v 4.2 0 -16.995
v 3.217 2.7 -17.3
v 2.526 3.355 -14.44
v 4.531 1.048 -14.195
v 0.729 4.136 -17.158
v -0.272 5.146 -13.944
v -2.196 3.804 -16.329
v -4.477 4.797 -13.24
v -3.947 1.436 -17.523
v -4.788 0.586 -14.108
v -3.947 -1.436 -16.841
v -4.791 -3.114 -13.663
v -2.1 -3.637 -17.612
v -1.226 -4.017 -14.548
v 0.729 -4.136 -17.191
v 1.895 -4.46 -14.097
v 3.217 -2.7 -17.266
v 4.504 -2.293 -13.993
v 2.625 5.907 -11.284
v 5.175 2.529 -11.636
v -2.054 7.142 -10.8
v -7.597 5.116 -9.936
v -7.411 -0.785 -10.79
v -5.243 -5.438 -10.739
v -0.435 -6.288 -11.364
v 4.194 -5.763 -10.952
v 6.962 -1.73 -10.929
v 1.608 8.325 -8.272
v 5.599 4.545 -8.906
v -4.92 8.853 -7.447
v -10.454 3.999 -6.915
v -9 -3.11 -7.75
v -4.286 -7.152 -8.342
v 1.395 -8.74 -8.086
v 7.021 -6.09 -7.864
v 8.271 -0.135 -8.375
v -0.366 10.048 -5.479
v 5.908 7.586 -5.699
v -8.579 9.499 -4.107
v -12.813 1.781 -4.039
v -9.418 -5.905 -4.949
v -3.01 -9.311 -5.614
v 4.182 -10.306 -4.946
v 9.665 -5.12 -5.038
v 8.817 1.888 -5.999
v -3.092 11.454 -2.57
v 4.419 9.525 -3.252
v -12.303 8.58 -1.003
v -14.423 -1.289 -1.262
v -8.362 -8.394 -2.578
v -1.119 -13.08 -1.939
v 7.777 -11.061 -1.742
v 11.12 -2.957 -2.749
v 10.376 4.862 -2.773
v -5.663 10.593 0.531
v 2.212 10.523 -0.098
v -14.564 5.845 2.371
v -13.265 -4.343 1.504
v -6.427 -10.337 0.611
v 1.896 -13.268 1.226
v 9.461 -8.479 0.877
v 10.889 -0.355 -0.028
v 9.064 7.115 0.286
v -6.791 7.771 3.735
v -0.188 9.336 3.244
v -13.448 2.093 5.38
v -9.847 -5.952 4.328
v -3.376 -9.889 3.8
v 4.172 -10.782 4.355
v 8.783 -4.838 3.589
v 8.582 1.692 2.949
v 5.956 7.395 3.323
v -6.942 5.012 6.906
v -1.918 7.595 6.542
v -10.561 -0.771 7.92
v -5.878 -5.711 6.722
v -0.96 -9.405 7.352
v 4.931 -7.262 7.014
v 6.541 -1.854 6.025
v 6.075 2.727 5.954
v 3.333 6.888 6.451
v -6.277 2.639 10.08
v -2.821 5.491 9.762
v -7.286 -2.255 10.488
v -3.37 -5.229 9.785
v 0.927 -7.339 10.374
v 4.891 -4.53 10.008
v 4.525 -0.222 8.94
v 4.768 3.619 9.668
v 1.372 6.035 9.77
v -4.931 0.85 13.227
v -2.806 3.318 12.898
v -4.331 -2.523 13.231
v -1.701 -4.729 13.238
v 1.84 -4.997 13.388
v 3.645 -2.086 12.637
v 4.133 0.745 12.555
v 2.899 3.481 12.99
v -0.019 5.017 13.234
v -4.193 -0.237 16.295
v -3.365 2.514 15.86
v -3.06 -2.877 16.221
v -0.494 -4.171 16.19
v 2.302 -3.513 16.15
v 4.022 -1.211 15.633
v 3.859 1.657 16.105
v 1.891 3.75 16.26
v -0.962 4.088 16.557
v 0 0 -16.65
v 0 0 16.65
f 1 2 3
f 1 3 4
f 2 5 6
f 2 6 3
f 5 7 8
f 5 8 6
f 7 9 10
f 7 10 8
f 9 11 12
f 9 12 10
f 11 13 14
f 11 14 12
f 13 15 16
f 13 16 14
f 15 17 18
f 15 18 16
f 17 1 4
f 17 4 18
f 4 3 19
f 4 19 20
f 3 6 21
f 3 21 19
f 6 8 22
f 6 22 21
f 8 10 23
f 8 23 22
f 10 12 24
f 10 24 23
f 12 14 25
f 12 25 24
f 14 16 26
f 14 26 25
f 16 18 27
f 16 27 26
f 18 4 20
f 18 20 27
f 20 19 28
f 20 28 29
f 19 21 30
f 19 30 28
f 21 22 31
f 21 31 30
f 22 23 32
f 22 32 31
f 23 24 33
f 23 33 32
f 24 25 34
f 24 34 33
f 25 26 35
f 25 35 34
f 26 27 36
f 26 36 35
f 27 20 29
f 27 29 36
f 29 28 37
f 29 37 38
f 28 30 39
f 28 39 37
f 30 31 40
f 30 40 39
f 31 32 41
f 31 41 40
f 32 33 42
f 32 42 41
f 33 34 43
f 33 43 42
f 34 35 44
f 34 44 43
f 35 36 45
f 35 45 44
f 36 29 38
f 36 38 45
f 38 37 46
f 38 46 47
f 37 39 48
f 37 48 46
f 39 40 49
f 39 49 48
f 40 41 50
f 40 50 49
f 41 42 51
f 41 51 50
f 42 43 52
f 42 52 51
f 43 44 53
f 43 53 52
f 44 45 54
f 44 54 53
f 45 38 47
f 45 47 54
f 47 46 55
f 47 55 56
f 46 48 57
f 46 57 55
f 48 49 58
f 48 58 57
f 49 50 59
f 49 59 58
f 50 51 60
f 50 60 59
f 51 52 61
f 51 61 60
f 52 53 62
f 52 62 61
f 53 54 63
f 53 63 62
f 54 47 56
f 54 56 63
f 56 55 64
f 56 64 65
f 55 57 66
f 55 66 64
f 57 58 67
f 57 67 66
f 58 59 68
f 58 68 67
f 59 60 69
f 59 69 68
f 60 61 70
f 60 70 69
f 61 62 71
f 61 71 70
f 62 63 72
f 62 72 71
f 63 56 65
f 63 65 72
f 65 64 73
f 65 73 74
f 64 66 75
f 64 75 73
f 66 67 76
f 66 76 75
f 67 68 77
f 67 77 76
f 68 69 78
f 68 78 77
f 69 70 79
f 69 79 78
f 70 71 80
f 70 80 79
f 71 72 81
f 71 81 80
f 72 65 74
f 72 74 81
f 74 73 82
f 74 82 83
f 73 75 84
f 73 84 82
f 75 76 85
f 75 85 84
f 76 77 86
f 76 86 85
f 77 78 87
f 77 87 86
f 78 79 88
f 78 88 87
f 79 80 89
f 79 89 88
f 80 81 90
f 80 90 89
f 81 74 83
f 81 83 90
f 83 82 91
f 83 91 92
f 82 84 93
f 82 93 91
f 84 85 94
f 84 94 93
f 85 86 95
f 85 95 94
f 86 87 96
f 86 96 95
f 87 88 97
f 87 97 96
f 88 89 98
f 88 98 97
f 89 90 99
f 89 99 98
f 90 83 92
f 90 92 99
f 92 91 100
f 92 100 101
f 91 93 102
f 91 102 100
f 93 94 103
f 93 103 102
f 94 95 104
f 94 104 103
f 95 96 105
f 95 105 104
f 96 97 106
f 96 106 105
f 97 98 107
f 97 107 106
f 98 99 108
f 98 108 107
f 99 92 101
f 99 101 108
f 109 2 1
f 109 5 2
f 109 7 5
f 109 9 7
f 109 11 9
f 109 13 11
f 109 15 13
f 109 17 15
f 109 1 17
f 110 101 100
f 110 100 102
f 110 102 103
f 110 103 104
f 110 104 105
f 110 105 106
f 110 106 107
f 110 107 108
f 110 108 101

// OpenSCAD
module object1(scale) { scale(0.15) polyhedron(
 points=[[28,0,-113.29807126778162],[21.449244407331385,17.998053071223097,-115.33448118412322],[16.842323638503295,22.368194707126307,-96.26775887044725],
[28,0,-113.29807126778162],[16.842323638503295,22.368194707126307,-96.26775887044725],[30.205709612306514,6.985626156597965,-94.63488091709826],
[21.449244407331385,17.998053071223097,-115.33448118412322],[4.862148974674051,27.574617084341824,-114.38710898759963],[-1.8110481182452045,34.307460404387896,-92.95874931797498],
[21.449244407331385,17.998053071223097,-115.33448118412322],[-1.8110481182452045,34.307460404387896,-92.95874931797498],[16.842323638503295,22.368194707126307,-96.26775887044725],
[4.862148974674051,27.574617084341824,-114.38710898759963],[-14.63976195944456,25.356811524472093,-108.86023804055543],[-29.843335256421017,31.97869198412332,-88.2659418283453],
[4.862148974674051,27.574617084341824,-114.38710898759963],[-29.843335256421017,31.97869198412332,-88.2659418283453],[-1.8110481182452045,34.307460404387896,-92.95874931797498],
[-14.63976195944456,25.356811524472093,-108.86023804055543],[-26.311393382005434,9.576564013118729,-116.82011558374396],[-31.92175213137996,3.907188196070144,-94.05637313001716],
[-14.63976195944456,25.356811524472093,-108.86023804055543],[-31.92175213137996,3.907188196070144,-94.05637313001716],[-29.843335256421017,31.97869198412332,-88.2659418283453],
[-26.311393382005434,9.576564013118729,-116.82011558374396],[-26.311393382005434,-9.576564013118723,-112.2748494113802],[-31.93951699779394,-20.759021255166886,-91.08990917939948],
[-26.311393382005434,9.576564013118729,-116.82011558374396],[-31.93951699779394,-20.759021255166886,-91.08990917939948],[-31.92175213137996,3.907188196070144,-94.05637313001716],
[-26.311393382005434,-9.576564013118723,-112.2748494113802],[-14.000000000000012,-24.248711305964274,-117.41365111449593],[-8.176234080321816,-26.779641451367194,-96.98470474322335],
[-26.311393382005434,-9.576564013118723,-112.2748494113802],[-8.176234080321816,-26.779641451367194,-96.98470474322335],[-31.93951699779394,-20.759021255166886,-91.08990917939948],
[-14.000000000000012,-24.248711305964274,-117.41365111449593],[4.862148974674039,-27.574617084341828,-114.60568491477093],[12.635435192538141,-29.735804463732677,-93.98185737951555],
[-14.000000000000012,-24.248711305964274,-117.41365111449593],[12.635435192538141,-29.735804463732677,-93.98185737951555],[-8.176234080321816,-26.779641451367194,-96.98470474322335],
[4.862148974674039,-27.574617084341828,-114.60568491477093],[21.449244407331378,-17.998053071223108,-115.10959001370429],[30.027776818176164,-15.285549196324304,-93.28914283532757],
[4.862148974674039,-27.574617084341828,-114.60568491477093],[30.027776818176164,-15.285549196324304,-93.28914283532757],[12.635435192538141,-29.735804463732677,-93.98185737951555],
[21.449244407331378,-17.998053071223108,-115.10959001370429],[28,0,-113.29807126778162],[30.205709612306514,6.985626156597965,-94.63488091709826],
[21.449244407331378,-17.998053071223108,-115.10959001370429],[30.205709612306514,6.985626156597965,-94.63488091709826],[30.027776818176164,-15.285549196324304,-93.28914283532757],
[30.205709612306514,6.985626156597965,-94.63488091709826],[16.842323638503295,22.368194707126307,-96.26775887044725],[17.49853483256472,39.38286169945253,-75.2250561867103],
[30.205709612306514,6.985626156597965,-94.63488091709826],[17.49853483256472,39.38286169945253,-75.2250561867103],[34.49782843915703,16.85817600499015,-77.57443135074021],
[16.842323638503295,22.368194707126307,-96.26775887044725],[-1.8110481182452045,34.307460404387896,-92.95874931797498],[-13.692161381876396,47.61366551315927,-72.00108811165055],
[16.842323638503295,22.368194707126307,-96.26775887044725],[-13.692161381876396,47.61366551315927,-72.00108811165055],[17.49853483256472,39.38286169945253,-75.2250561867103],
[-1.8110481182452045,34.307460404387896,-92.95874931797498],[-29.843335256421017,31.97869198412332,-88.2659418283453],[-50.648792736040654,34.107075904793966,-66.24162496543339],
[-1.8110481182452045,34.307460404387896,-92.95874931797498],[-50.648792736040654,34.107075904793966,-66.24162496543339],[-13.692161381876396,47.61366551315927,-72.00108811165055],
[-29.843335256421017,31.97869198412332,-88.2659418283453],[-31.92175213137996,3.907188196070144,-94.05637313001716],[-49.40443342320193,-5.230572842721768,-71.9324528472574],
[-29.843335256421017,31.97869198412332,-88.2659418283453],[-49.40443342320193,-5.230572842721768,-71.9324528472574],[-50.648792736040654,34.107075904793966,-66.24162496543339],
[-31.92175213137996,3.907188196070144,-94.05637313001716],[-31.93951699779394,-20.759021255166886,-91.08990917939948],[-34.95576185722093,-36.252837582695264,-71.59250924440181],
[-31.92175213137996,3.907188196070144,-94.05637313001716],[-34.95576185722093,-36.252837582695264,-71.59250924440181],[-49.40443342320193,-5.230572842721768,-71.9324528472574],
[-31.93951699779394,-20.759021255166886,-91.08990917939948],[-8.176234080321816,-26.779641451367194,-96.98470474322335],[-2.899271068370793,-41.91921983584189,-75.76304638287596],
[-31.93951699779394,-20.759021255166886,-91.08990917939948],[-2.899271068370793,-41.91921983584189,-75.76304638287596],[-34.95576185722093,-36.252837582695264,-71.59250924440181],
[-8.176234080321816,-26.779641451367194,-96.98470474322335],[12.635435192538141,-29.735804463732677,-93.98185737951555],[27.957493955642914,-38.41876575922486,-73.01550189421347],
[-8.176234080321816,-26.779641451367194,-96.98470474322335],[27.957493955642914,-38.41876575922486,-73.01550189421347],[-2.899271068370793,-41.91921983584189,-75.76304638287596],
[12.635435192538141,-29.735804463732677,-93.98185737951555],[30.027776818176164,-15.285549196324304,-93.28914283532757],[46.416468117173125,-11.53547036556529,-72.85852861885542],
[12.635435192538141,-29.735804463732677,-93.98185737951555],[46.416468117173125,-11.53547036556529,-72.85852861885542],[27.957493955642914,-38.41876575922486,-73.01550189421347],
[30.027776818176164,-15.285549196324304,-93.28914283532757],[30.205709612306514,6.985626156597965,-94.63488091709826],[34.49782843915703,16.85817600499015,-77.57443135074021],
[30.027776818176164,-15.285549196324304,-93.28914283532757],[34.49782843915703,16.85817600499015,-77.57443135074021],[46.416468117173125,-11.53547036556529,-72.85852861885542],
[34.49782843915703,16.85817600499015,-77.57443135074021],[17.49853483256472,39.38286169945253,-75.2250561867103],[10.722265180623465,55.49891842691174,-55.14649673781652],
[34.49782843915703,16.85817600499015,-77.57443135074021],[10.722265180623465,55.49891842691174,-55.14649673781652],[37.328617428965615,30.2986293146558,-59.37041052983031],
[17.49853483256472,39.38286169945253,-75.2250561867103],[-13.692161381876396,47.61366551315927,-72.00108811165055],[-32.80149414834799,59.01672500603995,-49.64923364931177],
[17.49853483256472,39.38286169945253,-75.2250561867103],[-32.80149414834799,59.01672500603995,-49.64923364931177],[10.722265180623465,55.49891842691174,-55.14649673781652],
[-13.692161381876396,47.61366551315927,-72.00108811165055],[-50.648792736040654,34.107075904793966,-66.24162496543339],[-69.69241515290658,26.66131327541818,-46.10004925892564],
[-13.692161381876396,47.61366551315927,-72.00108811165055],[-69.69241515290658,26.66131327541818,-46.10004925892564],[-32.80149414834799,59.01672500603995,-49.64923364931177],
[-50.648792736040654,34.107075904793966,-66.24162496543339],[-49.40443342320193,-5.230572842721768,-71.9324528472574],[-59.997386768556936,-20.735278130707076,-51.66937533769051],
[-50.648792736040654,34.107075904793966,-66.24162496543339],[-59.997386768556936,-20.735278130707076,-51.66937533769051],[-69.69241515290658,26.66131327541818,-46.10004925892564],
[-49.40443342320193,-5.230572842721768,-71.9324528472574],[-34.95576185722093,-36.252837582695264,-71.59250924440181],[-28.575369504268686,-47.680415732384056,-55.61532458137606],
[-49.40443342320193,-5.230572842721768,-71.9324528472574],[-28.575369504268686,-47.680415732384056,-55.61532458137606],[-59.997386768556936,-20.735278130707076,-51.66937533769051],
[-34.95576185722093,-36.252837582695264,-71.59250924440181],[-2.899271068370793,-41.91921983584189,-75.76304638287596],[9.297098061115237,-58.26964742228937,-53.905752779838885],
[-34.95576185722093,-36.252837582695264,-71.59250924440181],[9.297098061115237,-58.26964742228937,-53.905752779838885],[-28.575369504268686,-47.680415732384056,-55.61532458137606],
[-2.899271068370793,-41.91921983584189,-75.76304638287596],[27.957493955642914,-38.41876575922486,-73.01550189421347],[46.809529108148176,-40.59732712723013,-52.42814924650621],
[-2.899271068370793,-41.91921983584189,-75.76304638287596],[46.809529108148176,-40.59732712723013,-52.42814924650621],[9.297098061115237,-58.26964742228937,-53.905752779838885],
[27.957493955642914,-38.41876575922486,-73.01550189421347],[46.416468117173125,-11.53547036556529,-72.85852861885542],[55.14202416761634,-0.899640266603615,-55.834409669268396],
[27.957493955642914,-38.41876575922486,-73.01550189421347],[55.14202416761634,-0.899640266603615,-55.834409669268396],[46.809529108148176,-40.59732712723013,-52.42814924650621],
[46.416468117173125,-11.53547036556529,-72.85852861885542],[34.49782843915703,16.85817600499015,-77.57443135074021],[37.328617428965615,30.2986293146558,-59.37041052983031],
[46.416468117173125,-11.53547036556529,-72.85852861885542],[37.328617428965615,30.2986293146558,-59.37041052983031],[55.14202416761634,-0.899640266603615,-55.834409669268396],
[37.328617428965615,30.2986293146558,-59.37041052983031],[10.722265180623465,55.49891842691174,-55.14649673781652],[-2.4411631845606916,66.98688903720753,-36.52977694311145],
[37.328617428965615,30.2986293146558,-59.37041052983031],[-2.4411631845606916,66.98688903720753,-36.52977694311145],[39.38704892815642,50.57134781897295,-37.99549025726645],
[10.722265180623465,55.49891842691174,-55.14649673781652],[-32.80149414834799,59.01672500603995,-49.64923364931177],[-57.194884879372786,63.327551858524004,-27.379210040111815],
[10.722265180623465,55.49891842691174,-55.14649673781652],[-57.194884879372786,63.327551858524004,-27.379210040111815],[-2.4411631845606916,66.98688903720753,-36.52977694311145],
[-32.80149414834799,59.01672500603995,-49.64923364931177],[-69.69241515290658,26.66131327541818,-46.10004925892564],[-85.41891859967505,11.8724993290819,-26.925424701259846],
[-32.80149414834799,59.01672500603995,-49.64923364931177],[-85.41891859967505,11.8724993290819,-26.925424701259846],[-57.194884879372786,63.327551858524004,-27.379210040111815],
[-69.69241515290658,26.66131327541818,-46.10004925892564],[-59.997386768556936,-20.735278130707076,-51.66937533769051],[-62.78422739327124,-39.364733904516726,-32.99332409137875],
[-69.69241515290658,26.66131327541818,-46.10004925892564],[-62.78422739327124,-39.364733904516726,-32.99332409137875],[-85.41891859967505,11.8724993290819,-26.925424701259846],
[-59.997386768556936,-20.735278130707076,-51.66937533769051],[-28.575369504268686,-47.680415732384056,-55.61532458137606],[-20.064125666834286,-62.07184019997098,-37.42842492676742],
[-59.997386768556936,-20.735278130707076,-51.66937533769051],[-20.064125666834286,-62.07184019997098,-37.42842492676742],[-62.78422739327124,-39.364733904516726,-32.99332409137875],
[-28.575369504268686,-47.680415732384056,-55.61532458137606],[9.297098061115237,-58.26964742228937,-53.905752779838885],[27.880269780311366,-68.70529234598938,-32.97212639916178],
[-28.575369504268686,-47.680415732384056,-55.61532458137606],[27.880269780311366,-68.70529234598938,-32.97212639916178],[-20.064125666834286,-62.07184019997098,-37.42842492676742],
[9.297098061115237,-58.26964742228937,-53.905752779838885],[46.809529108148176,-40.59732712723013,-52.42814924650621],[64.43029872698719,-34.13270230842185,-33.58895731613974],
[9.297098061115237,-58.26964742228937,-53.905752779838885],[64.43029872698719,-34.13270230842185,-33.58895731613974],[27.880269780311366,-68.70529234598938,-32.97212639916178],
[46.809529108148176,-40.59732712723013,-52.42814924650621],[55.14202416761634,-0.899640266603615,-55.834409669268396],[58.77737700555178,12.586906942873243,-39.9904621396939],
[46.809529108148176,-40.59732712723013,-52.42814924650621],[58.77737700555178,12.586906942873243,-39.9904621396939],[64.43029872698719,-34.13270230842185,-33.58895731613974],
[55.14202416761634,-0.899640266603615,-55.834409669268396],[37.328617428965615,30.2986293146558,-59.37041052983031],[39.38704892815642,50.57134781897295,-37.99549025726645],
[55.14202416761634,-0.899640266603615,-55.834409669268396],[39.38704892815642,50.57134781897295,-37.99549025726645],[58.77737700555178,12.586906942873243,-39.9904621396939],
[39.38704892815642,50.57134781897295,-37.99549025726645],[-2.4411631845606916,66.98688903720753,-36.52977694311145],[-20.616242435047283,76.36034470845601,-17.134594208020502],
[39.38704892815642,50.57134781897295,-37.99549025726645],[-20.616242435047283,76.36034470845601,-17.134594208020502],[29.462319732758896,63.49678649868339,-21.682281828836672],
[-2.4411631845606916,66.98688903720753,-36.52977694311145],[-57.194884879372786,63.327551858524004,-27.379210040111815],[-82.02131338174439,57.20004860390573,-6.683464686039194],
[-2.4411631845606916,66.98688903720753,-36.52977694311145],[-82.02131338174439,57.20004860390573,-6.683464686039194],[-20.616242435047283,76.36034470845601,-17.134594208020502],
[-57.194884879372786,63.327551858524004,-27.379210040111815],[-85.41891859967505,11.8724993290819,-26.925424701259846],[-96.15437974735579,-8.596504127186654,-8.412872088580755],
[-57.194884879372786,63.327551858524004,-27.379210040111815],[-96.15437974735579,-8.596504127186654,-8.412872088580755],[-82.02131338174439,57.20004860390573,-6.683464686039194],
[-85.41891859967505,11.8724993290819,-26.925424701259846],[-62.78422739327124,-39.364733904516726,-32.99332409137875],[-55.74858440426597,-55.96079030870521,-17.18651873031876],
[-85.41891859967505,11.8724993290819,-26.925424701259846],[-55.74858440426597,-55.96079030870521,-17.18651873031876],[-96.15437974735579,-8.596504127186654,-8.412872088580755],
[-62.78422739327124,-39.364733904516726,-32.99332409137875],[-20.064125666834286,-62.07184019997098,-37.42842492676742],[-7.461930527035907,-87.19773913819604,-12.923601473401018],
[-62.78422739327124,-39.364733904516726,-32.99332409137875],[-7.461930527035907,-87.19773913819604,-12.923601473401018],[-55.74858440426597,-55.96079030870521,-17.18651873031876],
[-20.064125666834286,-62.07184019997098,-37.42842492676742],[27.880269780311366,-68.70529234598938,-32.97212639916178],[51.843722509476876,-73.74196740560724,-11.610626383482956],
[-20.064125666834286,-62.07184019997098,-37.42842492676742],[51.843722509476876,-73.74196740560724,-11.610626383482956],[-7.461930527035907,-87.19773913819604,-12.923601473401018],
[27.880269780311366,-68.70529234598938,-32.97212639916178],[64.43029872698719,-34.13270230842185,-33.58895731613974],[74.13106994552773,-19.71250537986982,-18.328205576158332],
[27.880269780311366,-68.70529234598938,-32.97212639916178],[74.13106994552773,-19.71250537986982,-18.328205576158332],[51.843722509476876,-73.74196740560724,-11.610626383482956],
[64.43029872698719,-34.13270230842185,-33.58895731613974],[58.77737700555178,12.586906942873243,-39.9904621396939],[69.17008151697299,32.41464914037079,-18.487546176849854],
[64.43029872698719,-34.13270230842185,-33.58895731613974],[69.17008151697299,32.41464914037079,-18.487546176849854],[74.13106994552773,-19.71250537986982,-18.328205576158332],
[58.77737700555178,12.586906942873243,-39.9904621396939],[39.38704892815642,50.57134781897295,-37.99549025726645],[29.462319732758896,63.49678649868339,-21.682281828836672],
[58.77737700555178,12.586906942873243,-39.9904621396939],[29.462319732758896,63.49678649868339,-21.682281828836672],[69.17008151697299,32.41464914037079,-18.487546176849854],
[29.462319732758896,63.49678649868339,-21.682281828836672],[-20.616242435047283,76.36034470845601,-17.134594208020502],[-37.754919174458486,70.61785770015408,3.538468215046329],
[29.462319732758896,63.49678649868339,-21.682281828836672],[-37.754919174458486,70.61785770015408,3.538468215046329],[14.744757671837336,70.15461155905867,-0.6563206345818475],
[-20.616242435047283,76.36034470845601,-17.134594208020502],[-82.02131338174439,57.20004860390573,-6.683464686039194],[-97.09048224227504,38.96988719242745,15.80968803631896],
[-20.616242435047283,76.36034470845601,-17.134594208020502],[-97.09048224227504,38.96988719242745,15.80968803631896],[-37.754919174458486,70.61785770015408,3.538468215046329],
[-82.02131338174439,57.20004860390573,-6.683464686039194],[-96.15437974735579,-8.596504127186654,-8.412872088580755],[-88.43199254586949,-28.956328508501308,10.02603106413914],
[-82.02131338174439,57.20004860390573,-6.683464686039194],[-88.43199254586949,-28.956328508501308,10.02603106413914],[-97.09048224227504,38.96988719242745,15.80968803631896],
[-96.15437974735579,-8.596504127186654,-8.412872088580755],[-55.74858440426597,-55.96079030870521,-17.18651873031876],[-42.843991073497385,-68.91378387191591,4.073135134750984],
[-96.15437974735579,-8.596504127186654,-8.412872088580755],[-42.843991073497385,-68.91378387191591,4.073135134750984],[-88.43199254586949,-28.956328508501308,10.02603106413914],
[-55.74858440426597,-55.96079030870521,-17.18651873031876],[-7.461930527035907,-87.19773913819604,-12.923601473401018],[12.636921527374698,-88.45287017015035,8.17550231118419],
[-55.74858440426597,-55.96079030870521,-17.18651873031876],[12.636921527374698,-88.45287017015035,8.17550231118419],[-42.843991073497385,-68.91378387191591,4.073135134750984],
[-7.461930527035907,-87.19773913819604,-12.923601473401018],[51.843722509476876,-73.74196740560724,-11.610626383482956],[63.07078101337039,-56.52938571443852,5.848243372329762],
[-7.461930527035907,-87.19773913819604,-12.923601473401018],[63.07078101337039,-56.52938571443852,5.848243372329762],[12.636921527374698,-88.45287017015035,8.17550231118419],
[51.843722509476876,-73.74196740560724,-11.610626383482956],[74.13106994552773,-19.71250537986982,-18.328205576158332],[72.59290938062695,-2.36933240635393,-0.18421752049216344],
[51.843722509476876,-73.74196740560724,-11.610626383482956],[72.59290938062695,-2.36933240635393,-0.18421752049216344],[63.07078101337039,-56.52938571443852,5.848243372329762],
[74.13106994552773,-19.71250537986982,-18.328205576158332],[69.17008151697299,32.41464914037079,-18.487546176849854],[60.425993289575395,47.43217994510562,1.909348990111404],
[74.13106994552773,-19.71250537986982,-18.328205576158332],[60.425993289575395,47.43217994510562,1.909348990111404],[72.59290938062695,-2.36933240635393,-0.18421752049216344],
[69.17008151697299,32.41464914037079,-18.487546176849854],[29.462319732758896,63.49678649868339,-21.682281828836672],[14.744757671837336,70.15461155905867,-0.6563206345818475],
[69.17008151697299,32.41464914037079,-18.487546176849854],[14.744757671837336,70.15461155905867,-0.6563206345818475],[60.425993289575395,47.43217994510562,1.909348990111404],
[14.744757671837336,70.15461155905867,-0.6563206345818475],[-37.754919174458486,70.61785770015408,3.538468215046329],[-45.27525037036575,51.80432006371692,24.900348375282952],
[14.744757671837336,70.15461155905867,-0.6563206345818475],[-45.27525037036575,51.80432006371692,24.900348375282952],[-1.2520378554008849,62.24251513052042,21.627553263003268],
[-37.754919174458486,70.61785770015408,3.538468215046329],[-97.09048224227504,38.96988719242745,15.80968803631896],[-89.65114795447415,13.95504350752062,35.865382090454744],
[-37.754919174458486,70.61785770015408,3.538468215046329],[-89.65114795447415,13.95504350752062,35.865382090454744],[-45.27525037036575,51.80432006371692,24.900348375282952],
[-97.09048224227504,38.96988719242745,15.80968803631896],[-88.43199254586949,-28.956328508501308,10.02603106413914],[-65.64728934366377,-39.68287068111601,28.854585200680013],
[-97.09048224227504,38.96988719242745,15.80968803631896],[-65.64728934366377,-39.68287068111601,28.854585200680013],[-89.65114795447415,13.95504350752062,35.865382090454744],
[-88.43199254586949,-28.956328508501308,10.02603106413914],[-42.843991073497385,-68.91378387191591,4.073135134750984],[-22.505026835614245,-65.92840556604477,25.331849266700594],
[-88.43199254586949,-28.956328508501308,10.02603106413914],[-22.505026835614245,-65.92840556604477,25.331849266700594],[-65.64728934366377,-39.68287068111601,28.854585200680013],
[-42.843991073497385,-68.91378387191591,4.073135134750984],[12.636921527374698,-88.45287017015035,8.17550231118419],[27.811012461758473,-71.87821668396224,29.035472125739926],
[-42.843991073497385,-68.91378387191591,4.073135134750984],[27.811012461758473,-71.87821668396224,29.035472125739926],[-22.505026835614245,-65.92840556604477,25.331849266700594],
[12.636921527374698,-88.45287017015035,8.17550231118419],[63.07078101337039,-56.52938571443852,5.848243372329762],[58.55552632960674,-32.254582307831164,23.925692751197865],
[12.636921527374698,-88.45287017015035,8.17550231118419],[58.55552632960674,-32.254582307831164,23.925692751197865],[27.811012461758473,-71.87821668396224,29.035472125739926],
[63.07078101337039,-56.52938571443852,5.848243372329762],[72.59290938062695,-2.36933240635393,-0.18421752049216344],[57.215859214900114,11.27963171991445,19.658552079262147],
[63.07078101337039,-56.52938571443852,5.848243372329762],[57.215859214900114,11.27963171991445,19.658552079262147],[58.55552632960674,-32.254582307831164,23.925692751197865],
[72.59290938062695,-2.36933240635393,-0.18421752049216344],[60.425993289575395,47.43217994510562,1.909348990111404],[39.70752368126048,49.30222683610827,22.152002337517835],
[72.59290938062695,-2.36933240635393,-0.18421752049216344],[39.70752368126048,49.30222683610827,22.152002337517835],[57.215859214900114,11.27963171991445,19.658552079262147],
[60.425993289575395,47.43217994510562,1.909348990111404],[14.744757671837336,70.15461155905867,-0.6563206345818475],[-1.2520378554008849,62.24251513052042,21.627553263003268],
[60.425993289575395,47.43217994510562,1.909348990111404],[-1.2520378554008849,62.24251513052042,21.627553263003268],[39.70752368126048,49.30222683610827,22.152002337517835],
[-1.2520378554008849,62.24251513052042,21.627553263003268],[-45.27525037036575,51.80432006371692,24.900348375282952],[-46.28057757186076,33.41036370551563,46.040078237979046],
[-1.2520378554008849,62.24251513052042,21.627553263003268],[-46.28057757186076,33.41036370551563,46.040078237979046],[-12.788172365010224,50.634435959087476,43.61217846777699],
[-45.27525037036575,51.80432006371692,24.900348375282952],[-89.65114795447415,13.95504350752062,35.865382090454744],[-70.4093376092204,-5.138595171850747,52.79830018184073],
[-45.27525037036575,51.80432006371692,24.900348375282952],[-70.4093376092204,-5.138595171850747,52.79830018184073],[-46.28057757186076,33.41036370551563,46.040078237979046],
[-89.65114795447415,13.95504350752062,35.865382090454744],[-65.64728934366377,-39.68287068111601,28.854585200680013],[-39.184007067946006,-38.07039302491386,44.81639267441922],
[-89.65114795447415,13.95504350752062,35.865382090454744],[-39.184007067946006,-38.07039302491386,44.81639267441922],[-70.4093376092204,-5.138595171850747,52.79830018184073],
[-65.64728934366377,-39.68287068111601,28.854585200680013],[-22.505026835614245,-65.92840556604477,25.331849266700594],[-6.397124998464627,-62.69709752843563,49.01130450622504],
[-65.64728934366377,-39.68287068111601,28.854585200680013],[-6.397124998464627,-62.69709752843563,49.01130450622504],[-39.184007067946006,-38.07039302491386,44.81639267441922],
[-22.505026835614245,-65.92840556604477,25.331849266700594],[27.811012461758473,-71.87821668396224,29.035472125739926],[32.87077550156242,-48.41485876408088,46.75955583745257],
[-22.505026835614245,-65.92840556604477,25.331849266700594],[32.87077550156242,-48.41485876408088,46.75955583745257],[-6.397124998464627,-62.69709752843563,49.01130450622504],
[27.811012461758473,-71.87821668396224,29.035472125739926],[58.55552632960674,-32.254582307831164,23.925692751197865],[43.6094672124962,-12.361493165483521,40.163804534091796],
[27.811012461758473,-71.87821668396224,29.035472125739926],[43.6094672124962,-12.361493165483521,40.163804534091796],[32.87077550156242,-48.41485876408088,46.75955583745257],
[58.55552632960674,-32.254582307831164,23.925692751197865],[57.215859214900114,11.27963171991445,19.658552079262147],[40.49754597244616,18.178357121462668,39.69517907917069],
[58.55552632960674,-32.254582307831164,23.925692751197865],[40.49754597244616,18.178357121462668,39.69517907917069],[43.6094672124962,-12.361493165483521,40.163804534091796],
[57.215859214900114,11.27963171991445,19.658552079262147],[39.70752368126048,49.30222683610827,22.152002337517835],[22.223162179147504,45.91792694998919,43.006494038897415],
[57.215859214900114,11.27963171991445,19.658552079262147],[22.223162179147504,45.91792694998919,43.006494038897415],[40.49754597244616,18.178357121462668,39.69517907917069],
[39.70752368126048,49.30222683610827,22.152002337517835],[-1.2520378554008849,62.24251513052042,21.627553263003268],[-12.788172365010224,50.634435959087476,43.61217846777699],
[39.70752368126048,49.30222683610827,22.152002337517835],[-12.788172365010224,50.634435959087476,43.61217846777699],[22.223162179147504,45.91792694998919,43.006494038897415],
[-12.788172365010224,50.634435959087476,43.61217846777699],[-46.28057757186076,33.41036370551563,46.040078237979046],[-41.847045665450175,17.594391122547847,67.19767515572612],
[-12.788172365010224,50.634435959087476,43.61217846777699],[-41.847045665450175,17.594391122547847,67.19767515572612],[-18.80906723286571,36.604909482619554,65.07729579172903],
[-46.28057757186076,33.41036370551563,46.040078237979046],[-70.4093376092204,-5.138595171850747,52.79830018184073],[-48.570593681550164,-15.031313449322514,69.92165884924717],
[-46.28057757186076,33.41036370551563,46.040078237979046],[-48.570593681550164,-15.031313449322514,69.92165884924717],[-41.847045665450175,17.594391122547847,67.19767515572612],
[-70.4093376092204,-5.138595171850747,52.79830018184073],[-39.184007067946006,-38.07039302491386,44.81639267441922],[-22.467744233094308,-34.85765332037445,65.23557044023119],
[-70.4093376092204,-5.138595171850747,52.79830018184073],[-22.467744233094308,-34.85765332037445,65.23557044023119],[-48.570593681550164,-15.031313449322514,69.92165884924717],
[-39.184007067946006,-38.07039302491386,44.81639267441922],[-6.397124998464627,-62.69709752843563,49.01130450622504],[6.17738304149106,-48.927091573315344,69.15775917974345],
[-39.184007067946006,-38.07039302491386,44.81639267441922],[6.17738304149106,-48.927091573315344,69.15775917974345],[-22.467744233094308,-34.85765332037445,65.23557044023119],
[-6.397124998464627,-62.69709752843563,49.01130450622504],[32.87077550156242,-48.41485876408088,46.75955583745257],[32.604948683835055,-30.196834285866608,66.72010058237592],
[-6.397124998464627,-62.69709752843563,49.01130450622504],[32.604948683835055,-30.196834285866608,66.72010058237592],[6.17738304149106,-48.927091573315344,69.15775917974345],
[32.87077550156242,-48.41485876408088,46.75955583745257],[43.6094672124962,-12.361493165483521,40.163804534091796],[30.165242407630007,-1.4774835641191089,59.60070202998294],
[32.87077550156242,-48.41485876408088,46.75955583745257],[30.165242407630007,-1.4774835641191089,59.60070202998294],[32.604948683835055,-30.196834285866608,66.72010058237592],
[43.6094672124962,-12.361493165483521,40.163804534091796],[40.49754597244616,18.178357121462668,39.69517907917069],[31.786297078982788,24.123538853716468,64.45190347322857],
[43.6094672124962,-12.361493165483521,40.163804534091796],[31.786297078982788,24.123538853716468,64.45190347322857],[30.165242407630007,-1.4774835641191089,59.60070202998294],
[40.49754597244616,18.178357121462668,39.69517907917069],[22.223162179147504,45.91792694998919,43.006494038897415],[9.144248865687759,40.23527570324277,65.13064891268324],
[40.49754597244616,18.178357121462668,39.69517907917069],[9.144248865687759,40.23527570324277,65.13064891268324],[31.786297078982788,24.123538853716468,64.45190347322857],
[22.223162179147504,45.91792694998919,43.006494038897415],[-12.788172365010224,50.634435959087476,43.61217846777699],[-18.80906723286571,36.604909482619554,65.07729579172903],
[22.223162179147504,45.91792694998919,43.006494038897415],[-18.80906723286571,36.604909482619554,65.07729579172903],[9.144248865687759,40.23527570324277,65.13064891268324],
[-18.80906723286571,36.604909482619554,65.07729579172903],[-41.847045665450175,17.594391122547847,67.19767515572612],[-32.875922966354814,5.668210737259227,88.18048953007433],
[-18.80906723286571,36.604909482619554,65.07729579172903],[-32.875922966354814,5.668210737259227,88.18048953007433],[-18.706770514744793,22.122622521332158,85.98580072271358],
[-41.847045665450175,17.594391122547847,67.19767515572612],[-48.570593681550164,-15.031313449322514,69.92165884924717],[-28.876088446202626,-16.81821615787931,88.20838770412985],
[-41.847045665450175,17.594391122547847,67.19767515572612],[-28.876088446202626,-16.81821615787931,88.20838770412985],[-32.875922966354814,5.668210737259227,88.18048953007433],
[-48.570593681550164,-15.031313449322514,69.92165884924717],[-22.467744233094308,-34.85765332037445,65.23557044023119],[-11.338390086907213,-31.524109227837247,88.25058620146984],
[-48.570593681550164,-15.031313449322514,69.92165884924717],[-11.338390086907213,-31.524109227837247,88.25058620146984],[-28.876088446202626,-16.81821615787931,88.20838770412985],
[-22.467744233094308,-34.85765332037445,65.23557044023119],[6.17738304149106,-48.927091573315344,69.15775917974345],[12.269285876268777,-33.315214433020955,89.25133015179267],
[-22.467744233094308,-34.85765332037445,65.23557044023119],[12.269285876268777,-33.315214433020955,89.25133015179267],[-11.338390086907213,-31.524109227837247,88.25058620146984],
[6.17738304149106,-48.927091573315344,69.15775917974345],[32.604948683835055,-30.196834285866608,66.72010058237592],[24.301725603956132,-13.90777238345606,84.24760356727748],
[6.17738304149106,-48.927091573315344,69.15775917974345],[24.301725603956132,-13.90777238345606,84.24760356727748],[12.269285876268777,-33.315214433020955,89.25133015179267],
[32.604948683835055,-30.196834285866608,66.72010058237592],[30.165242407630007,-1.4774835641191089,59.60070202998294],[27.555945623538975,4.966876361715012,83.69793753832789],
[32.604948683835055,-30.196834285866608,66.72010058237592],[27.555945623538975,4.966876361715012,83.69793753832789],[24.301725603956132,-13.90777238345606,84.24760356727748],
[30.165242407630007,-1.4774835641191089,59.60070202998294],[31.786297078982788,24.123538853716468,64.45190347322857],[19.323814468920496,23.207721168200944,86.5997361520841],
[30.165242407630007,-1.4774835641191089,59.60070202998294],[19.323814468920496,23.207721168200944,86.5997361520841],[27.555945623538975,4.966876361715012,83.69793753832789],
[31.786297078982788,24.123538853716468,64.45190347322857],[9.144248865687759,40.23527570324277,65.13064891268324],[-0.1270756077013729,33.447432788100066,88.22383709204128],
[31.786297078982788,24.123538853716468,64.45190347322857],[-0.1270756077013729,33.447432788100066,88.22383709204128],[19.323814468920496,23.207721168200944,86.5997361520841],
[9.144248865687759,40.23527570324277,65.13064891268324],[-18.80906723286571,36.604909482619554,65.07729579172903],[-18.706770514744793,22.122622521332158,85.98580072271358],
[9.144248865687759,40.23527570324277,65.13064891268324],[-18.706770514744793,22.122622521332158,85.98580072271358],[-0.1270756077013729,33.447432788100066,88.22383709204128],
[-18.706770514744793,22.122622521332158,85.98580072271358],[-32.875922966354814,5.668210737259227,88.18048953007433],[-27.955258626471,-1.5822500204198602,108.63080446877782],
[-18.706770514744793,22.122622521332158,85.98580072271358],[-27.955258626471,-1.5822500204198602,108.63080446877782],[-22.432021235314142,16.757220034910784,105.73360932793074],
[-32.875922966354814,5.668210737259227,88.18048953007433],[-28.876088446202626,-16.81821615787931,88.20838770412985],[-20.39791981820982,-19.18136770644583,108.14049116006588],
[-32.875922966354814,5.668210737259227,88.18048953007433],[-20.39791981820982,-19.18136770644583,108.14049116006588],[-27.955258626471,-1.5822500204198602,108.63080446877782],
[-28.876088446202626,-16.81821615787931,88.20838770412985],[-11.338390086907213,-31.524109227837247,88.25058620146984],[-3.2961676293812414,-27.805310265469423,107.93107872202285],
[-28.876088446202626,-16.81821615787931,88.20838770412985],[-3.2961676293812414,-27.805310265469423,107.93107872202285],[-20.39791981820982,-19.18136770644583,108.14049116006588],
[-11.338390086907213,-31.524109227837247,88.25058620146984],[12.269285876268777,-33.315214433020955,89.25133015179267],[15.347898026057551,-23.41883912967803,107.66936242247387],
[-11.338390086907213,-31.524109227837247,88.25058620146984],[15.347898026057551,-23.41883912967803,107.66936242247387],[-3.2961676293812414,-27.805310265469423,107.93107872202285],
[12.269285876268777,-33.315214433020955,89.25133015179267],[24.301725603956132,-13.90777238345606,84.24760356727748],[26.810511622217447,-8.07443289370487,104.22144809056266],
[12.269285876268777,-33.315214433020955,89.25133015179267],[26.810511622217447,-8.07443289370487,104.22144809056266],[15.347898026057551,-23.41883912967803,107.66936242247387],
[24.301725603956132,-13.90777238345606,84.24760356727748],[27.555945623538975,4.966876361715012,83.69793753832789],[25.728188864695372,11.048090230558632,107.36670049954753],
[24.301725603956132,-13.90777238345606,84.24760356727748],[25.728188864695372,11.048090230558632,107.36670049954753],[26.810511622217447,-8.07443289370487,104.22144809056266],
[27.555945623538975,4.966876361715012,83.69793753832789],[19.323814468920496,23.207721168200944,86.5997361520841],[12.607360600413466,25.001089150097886,108.40080364883885],
[27.555945623538975,4.966876361715012,83.69793753832789],[12.607360600413466,25.001089150097886,108.40080364883885],[25.728188864695372,11.048090230558632,107.36670049954753],
[19.323814468920496,23.207721168200944,86.5997361520841],[-0.1270756077013729,33.447432788100066,88.22383709204128],[-6.412591804007641,27.25580060015068,110.37960662983338],
[19.323814468920496,23.207721168200944,86.5997361520841],[-6.412591804007641,27.25580060015068,110.37960662983338],[12.607360600413466,25.001089150097886,108.40080364883885],
[-0.1270756077013729,33.447432788100066,88.22383709204128],[-18.706770514744793,22.122622521332158,85.98580072271358],[-22.432021235314142,16.757220034910784,105.73360932793074],
[-0.1270756077013729,33.447432788100066,88.22383709204128],[-22.432021235314142,16.757220034910784,105.73360932793074],[-6.412591804007641,27.25580060015068,110.37960662983338],
[0,0,-111],[21.449244407331385,17.998053071223097,-115.33448118412322],[28,0,-113.29807126778162],
[0,0,-111],[4.862148974674051,27.574617084341824,-114.38710898759963],[21.449244407331385,17.998053071223097,-115.33448118412322],
[0,0,-111],[-14.63976195944456,25.356811524472093,-108.86023804055543],[4.862148974674051,27.574617084341824,-114.38710898759963],
[0,0,-111],[-26.311393382005434,9.576564013118729,-116.82011558374396],[-14.63976195944456,25.356811524472093,-108.86023804055543],
[0,0,-111],[-26.311393382005434,-9.576564013118723,-112.2748494113802],[-26.311393382005434,9.576564013118729,-116.82011558374396],
[0,0,-111],[-14.000000000000012,-24.248711305964274,-117.41365111449593],[-26.311393382005434,-9.576564013118723,-112.2748494113802],
[0,0,-111],[4.862148974674039,-27.574617084341828,-114.60568491477093],[-14.000000000000012,-24.248711305964274,-117.41365111449593],
[0,0,-111],[21.449244407331378,-17.998053071223108,-115.10959001370429],[4.862148974674039,-27.574617084341828,-114.60568491477093],
[0,0,-111],[28,0,-113.29807126778162],[21.449244407331378,-17.998053071223108,-115.10959001370429],
[0,0,111],[-22.432021235314142,16.757220034910784,105.73360932793074],[-27.955258626471,-1.5822500204198602,108.63080446877782],
[0,0,111],[-27.955258626471,-1.5822500204198602,108.63080446877782],[-20.39791981820982,-19.18136770644583,108.14049116006588],
[0,0,111],[-20.39791981820982,-19.18136770644583,108.14049116006588],[-3.2961676293812414,-27.805310265469423,107.93107872202285],
[0,0,111],[-3.2961676293812414,-27.805310265469423,107.93107872202285],[15.347898026057551,-23.41883912967803,107.66936242247387],
[0,0,111],[15.347898026057551,-23.41883912967803,107.66936242247387],[26.810511622217447,-8.07443289370487,104.22144809056266],
[0,0,111],[26.810511622217447,-8.07443289370487,104.22144809056266],[25.728188864695372,11.048090230558632,107.36670049954753],
[0,0,111],[25.728188864695372,11.048090230558632,107.36670049954753],[12.607360600413466,25.001089150097886,108.40080364883885],
[0,0,111],[12.607360600413466,25.001089150097886,108.40080364883885],[-6.412591804007641,27.25580060015068,110.37960662983338],
[0,0,111],[-6.412591804007641,27.25580060015068,110.37960662983338],[-22.432021235314142,16.757220034910784,105.73360932793074] ],
faces=[[0,1,2],[3,4,5],[6,7,8],
[9,10,11],[12,13,14],[15,16,17],
[18,19,20],[21,22,23],[24,25,26],
[27,28,29],[30,31,32],[33,34,35],
[36,37,38],[39,40,41],[42,43,44],
[45,46,47],[48,49,50],[51,52,53],
[54,55,56],[57,58,59],[60,61,62],
[63,64,65],[66,67,68],[69,70,71],
[72,73,74],[75,76,77],[78,79,80],
[81,82,83],[84,85,86],[87,88,89],
[90,91,92],[93,94,95],[96,97,98],
[99,100,101],[102,103,104],[105,106,107],
[108,109,110],[111,112,113],[114,115,116],
[117,118,119],[120,121,122],[123,124,125],
[126,127,128],[129,130,131],[132,133,134],
[135,136,137],[138,139,140],[141,142,143],
[144,145,146],[147,148,149],[150,151,152],
[153,154,155],[156,157,158],[159,160,161],
[162,163,164],[165,166,167],[168,169,170],
[171,172,173],[174,175,176],[177,178,179],
[180,181,182],[183,184,185],[186,187,188],
[189,190,191],[192,193,194],[195,196,197],
[198,199,200],[201,202,203],[204,205,206],
[207,208,209],[210,211,212],[213,214,215],
[216,217,218],[219,220,221],[222,223,224],
[225,226,227],[228,229,230],[231,232,233],
[234,235,236],[237,238,239],[240,241,242],
[243,244,245],[246,247,248],[249,250,251],
[252,253,254],[255,256,257],[258,259,260],
[261,262,263],[264,265,266],[267,268,269],
[270,271,272],[273,274,275],[276,277,278],
[279,280,281],[282,283,284],[285,286,287],
[288,289,290],[291,292,293],[294,295,296],
[297,298,299],[300,301,302],[303,304,305],
[306,307,308],[309,310,311],[312,313,314],
[315,316,317],[318,319,320],[321,322,323],
[324,325,326],[327,328,329],[330,331,332],
[333,334,335],[336,337,338],[339,340,341],
[342,343,344],[345,346,347],[348,349,350],
[351,352,353],[354,355,356],[357,358,359],
[360,361,362],[363,364,365],[366,367,368],
[369,370,371],[372,373,374],[375,376,377],
[378,379,380],[381,382,383],[384,385,386],
[387,388,389],[390,391,392],[393,394,395],
[396,397,398],[399,400,401],[402,403,404],
[405,406,407],[408,409,410],[411,412,413],
[414,415,416],[417,418,419],[420,421,422],
[423,424,425],[426,427,428],[429,430,431],
[432,433,434],[435,436,437],[438,439,440],
[441,442,443],[444,445,446],[447,448,449],
[450,451,452],[453,454,455],[456,457,458],
[459,460,461],[462,463,464],[465,466,467],
[468,469,470],[471,472,473],[474,475,476],
[477,478,479],[480,481,482],[483,484,485],
[486,487,488],[489,490,491],[492,493,494],
[495,496,497],[498,499,500],[501,502,503],
[504,505,506],[507,508,509],[510,511,512],
[513,514,515],[516,517,518],[519,520,521],
[522,523,524],[525,526,527],[528,529,530],
[531,532,533],[534,535,536],[537,538,539],
[540,541,542],[543,544,545],[546,547,548],
[549,550,551],[552,553,554],[555,556,557],
[558,559,560],[561,562,563],[564,565,566],
[567,568,569],[570,571,572],[573,574,575],
[576,577,578],[579,580,581],[582,583,584],
[585,586,587],[588,589,590],[591,592,593],
[594,595,596],[597,598,599],[600,601,602],
[603,604,605],[606,607,608],[609,610,611],
[612,613,614],[615,616,617],[618,619,620],
[621,622,623],[624,625,626],[627,628,629],
[630,631,632],[633,634,635],[636,637,638],
[639,640,641],[642,643,644],[645,646,647]]);}

function object1Min() = [-97.090, -88.453, -117.414];
function object1Max() = [74.131, 76.360, 111.000];

object1(1);
